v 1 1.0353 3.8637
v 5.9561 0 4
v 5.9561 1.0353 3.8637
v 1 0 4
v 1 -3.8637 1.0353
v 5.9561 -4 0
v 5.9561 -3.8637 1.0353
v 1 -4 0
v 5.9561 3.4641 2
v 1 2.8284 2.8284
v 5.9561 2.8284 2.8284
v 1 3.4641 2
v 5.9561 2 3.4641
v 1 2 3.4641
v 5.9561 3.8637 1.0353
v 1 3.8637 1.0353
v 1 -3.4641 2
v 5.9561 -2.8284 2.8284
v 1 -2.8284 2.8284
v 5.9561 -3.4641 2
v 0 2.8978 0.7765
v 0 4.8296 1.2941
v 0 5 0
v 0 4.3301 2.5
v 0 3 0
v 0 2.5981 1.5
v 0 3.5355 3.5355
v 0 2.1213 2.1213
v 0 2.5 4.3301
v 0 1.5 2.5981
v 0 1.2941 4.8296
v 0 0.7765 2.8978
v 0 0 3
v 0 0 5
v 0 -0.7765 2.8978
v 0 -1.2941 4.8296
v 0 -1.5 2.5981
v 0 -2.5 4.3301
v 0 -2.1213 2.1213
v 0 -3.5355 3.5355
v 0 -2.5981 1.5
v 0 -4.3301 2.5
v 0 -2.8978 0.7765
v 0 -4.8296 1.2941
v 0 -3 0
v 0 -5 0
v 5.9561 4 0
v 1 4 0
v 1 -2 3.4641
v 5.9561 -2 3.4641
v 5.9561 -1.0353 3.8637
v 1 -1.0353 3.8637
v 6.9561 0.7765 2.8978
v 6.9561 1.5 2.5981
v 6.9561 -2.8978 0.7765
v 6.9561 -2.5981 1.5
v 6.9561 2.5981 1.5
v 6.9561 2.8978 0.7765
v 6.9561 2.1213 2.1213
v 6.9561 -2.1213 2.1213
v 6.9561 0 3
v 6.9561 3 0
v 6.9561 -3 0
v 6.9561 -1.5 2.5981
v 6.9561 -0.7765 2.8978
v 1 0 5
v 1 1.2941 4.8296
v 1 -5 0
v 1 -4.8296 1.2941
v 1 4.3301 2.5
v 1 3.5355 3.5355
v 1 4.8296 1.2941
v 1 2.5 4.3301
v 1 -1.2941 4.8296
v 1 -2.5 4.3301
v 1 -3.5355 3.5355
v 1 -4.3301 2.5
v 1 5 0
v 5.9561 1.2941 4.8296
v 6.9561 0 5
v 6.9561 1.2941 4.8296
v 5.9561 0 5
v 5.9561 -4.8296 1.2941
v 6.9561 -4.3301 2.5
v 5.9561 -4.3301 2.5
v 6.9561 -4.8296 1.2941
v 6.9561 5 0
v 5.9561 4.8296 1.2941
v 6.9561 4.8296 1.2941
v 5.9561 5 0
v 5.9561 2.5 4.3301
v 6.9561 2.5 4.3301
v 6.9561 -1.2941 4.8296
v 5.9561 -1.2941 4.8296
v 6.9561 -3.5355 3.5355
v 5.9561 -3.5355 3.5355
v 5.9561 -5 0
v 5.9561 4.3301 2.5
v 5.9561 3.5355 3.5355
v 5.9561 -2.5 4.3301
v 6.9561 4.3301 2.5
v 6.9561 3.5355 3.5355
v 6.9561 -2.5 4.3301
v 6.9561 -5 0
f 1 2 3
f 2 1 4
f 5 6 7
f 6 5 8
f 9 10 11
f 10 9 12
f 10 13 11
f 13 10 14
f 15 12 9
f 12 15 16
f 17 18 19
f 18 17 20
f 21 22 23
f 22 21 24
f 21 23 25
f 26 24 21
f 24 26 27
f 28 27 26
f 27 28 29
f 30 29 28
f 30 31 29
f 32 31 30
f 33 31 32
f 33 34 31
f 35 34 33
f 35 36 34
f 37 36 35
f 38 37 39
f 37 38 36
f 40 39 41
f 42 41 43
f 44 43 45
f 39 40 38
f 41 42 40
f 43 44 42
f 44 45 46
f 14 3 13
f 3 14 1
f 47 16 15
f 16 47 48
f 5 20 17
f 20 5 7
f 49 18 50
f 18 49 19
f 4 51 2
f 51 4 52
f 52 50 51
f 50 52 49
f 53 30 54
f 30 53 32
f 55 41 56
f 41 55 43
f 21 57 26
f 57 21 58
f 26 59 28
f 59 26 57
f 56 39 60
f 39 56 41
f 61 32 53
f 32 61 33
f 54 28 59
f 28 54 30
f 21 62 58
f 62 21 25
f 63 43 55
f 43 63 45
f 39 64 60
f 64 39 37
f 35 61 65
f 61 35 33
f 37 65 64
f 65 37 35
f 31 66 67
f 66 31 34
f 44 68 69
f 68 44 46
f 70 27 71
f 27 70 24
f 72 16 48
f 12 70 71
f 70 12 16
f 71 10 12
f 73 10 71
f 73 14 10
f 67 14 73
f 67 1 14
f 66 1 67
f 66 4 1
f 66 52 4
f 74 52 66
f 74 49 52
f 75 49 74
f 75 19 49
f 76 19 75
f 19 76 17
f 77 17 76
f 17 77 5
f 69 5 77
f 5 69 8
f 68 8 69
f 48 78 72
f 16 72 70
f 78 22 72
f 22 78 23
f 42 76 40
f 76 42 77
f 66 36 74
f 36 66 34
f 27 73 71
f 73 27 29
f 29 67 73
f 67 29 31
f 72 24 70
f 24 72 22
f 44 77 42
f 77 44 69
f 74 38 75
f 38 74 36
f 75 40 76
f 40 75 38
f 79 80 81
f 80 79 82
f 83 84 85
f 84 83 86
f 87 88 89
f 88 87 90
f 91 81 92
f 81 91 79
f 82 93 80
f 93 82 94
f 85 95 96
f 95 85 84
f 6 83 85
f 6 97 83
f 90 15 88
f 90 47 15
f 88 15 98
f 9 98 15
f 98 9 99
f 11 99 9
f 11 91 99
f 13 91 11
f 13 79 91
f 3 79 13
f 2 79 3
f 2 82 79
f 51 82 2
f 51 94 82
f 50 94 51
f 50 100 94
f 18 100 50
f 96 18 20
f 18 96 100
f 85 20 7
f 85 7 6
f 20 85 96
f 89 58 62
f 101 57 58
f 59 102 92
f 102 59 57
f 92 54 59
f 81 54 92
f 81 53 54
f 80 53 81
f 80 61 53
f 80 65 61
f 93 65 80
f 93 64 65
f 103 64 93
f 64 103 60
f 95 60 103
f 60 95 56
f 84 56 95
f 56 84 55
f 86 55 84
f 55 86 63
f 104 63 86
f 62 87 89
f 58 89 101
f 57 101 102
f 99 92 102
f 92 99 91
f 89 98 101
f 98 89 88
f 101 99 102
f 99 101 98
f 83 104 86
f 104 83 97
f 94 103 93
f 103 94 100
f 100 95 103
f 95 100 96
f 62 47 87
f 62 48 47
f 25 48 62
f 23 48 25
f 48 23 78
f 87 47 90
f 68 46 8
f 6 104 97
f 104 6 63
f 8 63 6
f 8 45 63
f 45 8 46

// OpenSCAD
// file: ../build_environments.scad
// build_environments.scad: modules to build level sections
//

module pool(diameter=10.0, wall_height=2.0, step_width=3.0, connections=[])
{
    difference() {
        union() {
        difference() {
            cylinder(h=0.5,r1=diameter+step_width,r2=diameter+step_width,$fn=48);
            translate([0,0,-0.1])
                cylinder(h=0.7,r1=diameter,r2=diameter,$fn=48);
        }
        difference() {
            cylinder(h=wall_height,r1=diameter+step_width+1.0,r2=diameter+step_width+1.0,$fn=48);
            translate([0,0,-0.1])
                cylinder(h=wall_height+0.2,r1=diameter+step_width,r2=diameter+step_width,$fn=48);
        }
        }
    
        for (c = connections)
        {
            rotate([0,90,0]) {
                angle = atan2(c[1],c[0]);
                rotate([-angle,0,0]) {
                    cylinder(h=diameter+5.0,r1=c[2],r2=c[2],$fn=48);
                }
            }
        }
    }
}

module straight(length=10.0, width=2.0, dy1=0.0, dy2=0.0, dz=0.0)
{
    dims = [0, 0, 0, 0, 0, (dz/length)];
    matrix = [
        [ 1, dims[0], dims[1], 0 ],
        [ dims[2], 1, dims[4], 0 ],
        [ dims[5], dims[3], 1, 0 ],
        [ 0, 0, 0, 1 ]
    ];
    multmatrix(matrix)
    difference() {
        translate([dy1,0,0])
        union() {
            rotate([0,90,0]) {
                difference() {
                    cylinder(h=(length-dy1-dy2),r1=width+1.0,r2=width+1.0,$fn=24);
                    translate([0,0,-0.1])
                        cylinder(h=(length-dy1-dy2+0.2),r1=width,r2=width,$fn=24);
                }
                difference() {
                    cylinder(h=1.0,r1=width+2.0,r2=width+2.0,$fn=24);
                    translate([0,0,-0.1])
                        cylinder(h=1.2,r1=width,r2=width,$fn=24);
                }
                translate([0,0,(length-dy1-dy2)-1.0]) {
                    difference() {
                        cylinder(h=1.0,r1=width+2.0,r2=width+2.0,$fn=24);
                        translate([0,0,-0.1])
                            cylinder(h=1.2,r1=width,r2=width,$fn=24);
                    }
                }
            }
        }
        translate([0,0,-(2*width+4.0)/2])
            cube([3*length,3*length,2*width+4.0],center=true);
    }
}

module curve(p0=[0,0], center=[0,0], dir=1, angle=0.0, width=2.0)
{
    radius = sqrt((p0[0]-center[0])*(p0[0]-center[0]) + (p0[1]-center[1])*(p0[1]-center[1]));
    if (dir == 0) {
        difference() {
            rotate([0,0,-90])
            difference() {
                rotate_extrude(angle = angle, convexity = 10, $fn=32)
                    translate([radius, 0, 0])
                        circle(r = width+1.0,$fn=24);
                rotate([0,0,-1.0])
                    rotate_extrude(angle = angle+2.0, convexity = 10, $fn=32)
                        translate([radius, 0, 0])
                            circle(r = width,$fn=24);
            }
            translate([0,0,-(2*width+4.0)/2])
                cube([5*radius,5*radius,2*width+4.0],center=true);
        }
    }
    else {
        difference() {
            rotate([0,0,90])
            difference() {
                rotate_extrude(angle = -angle, convexity = 10, $fn=32)
                    translate([radius, 0, 0])
                        circle(r = width+1.0,$fn=24);
                rotate([0,0,1.0])
                    rotate_extrude(angle = -angle-2.0, convexity = 10, $fn=32)
                        translate([radius, 0, 0])
                            circle(r = width,$fn=24);
            }
            translate([0,0,-(2*width+4.0)/2])
                cube([5*radius,5*radius,2*width+4.0],center=true);
        }
    }

}

// test pool
//pool(diameter=12.0000, wall_height=3.0000, step_width=3.0000, connections=[[0.0000,-26.0000,2.0000], [23.6074,0.0000,2.0000]]);

// test straight, slope
//straight(length=26.0000, width=2.0000, dy1=11.8322, dy2=6.7082, dz=0.0000);
//straight(length=29.1549, width=12.0000, dy1=0.0000, dy2=0.0000, dz=-15.0000);

// test curve
//curve(p0=[23.6074, 0.0000], center=[23.6074, 5.0000], dir=0, angle=60.1011, width=2.0000);
//curve(p0=[33.6426, 12.4219], center=[37.9771, 9.9295], dir=1, angle=120.4627, width=2.0000);
// main file
use <../build_environments.scad>;
straight(length=6.9561, width=3.0000, dy1=0.0000, dy2=0.0000, dz=0.0000);
